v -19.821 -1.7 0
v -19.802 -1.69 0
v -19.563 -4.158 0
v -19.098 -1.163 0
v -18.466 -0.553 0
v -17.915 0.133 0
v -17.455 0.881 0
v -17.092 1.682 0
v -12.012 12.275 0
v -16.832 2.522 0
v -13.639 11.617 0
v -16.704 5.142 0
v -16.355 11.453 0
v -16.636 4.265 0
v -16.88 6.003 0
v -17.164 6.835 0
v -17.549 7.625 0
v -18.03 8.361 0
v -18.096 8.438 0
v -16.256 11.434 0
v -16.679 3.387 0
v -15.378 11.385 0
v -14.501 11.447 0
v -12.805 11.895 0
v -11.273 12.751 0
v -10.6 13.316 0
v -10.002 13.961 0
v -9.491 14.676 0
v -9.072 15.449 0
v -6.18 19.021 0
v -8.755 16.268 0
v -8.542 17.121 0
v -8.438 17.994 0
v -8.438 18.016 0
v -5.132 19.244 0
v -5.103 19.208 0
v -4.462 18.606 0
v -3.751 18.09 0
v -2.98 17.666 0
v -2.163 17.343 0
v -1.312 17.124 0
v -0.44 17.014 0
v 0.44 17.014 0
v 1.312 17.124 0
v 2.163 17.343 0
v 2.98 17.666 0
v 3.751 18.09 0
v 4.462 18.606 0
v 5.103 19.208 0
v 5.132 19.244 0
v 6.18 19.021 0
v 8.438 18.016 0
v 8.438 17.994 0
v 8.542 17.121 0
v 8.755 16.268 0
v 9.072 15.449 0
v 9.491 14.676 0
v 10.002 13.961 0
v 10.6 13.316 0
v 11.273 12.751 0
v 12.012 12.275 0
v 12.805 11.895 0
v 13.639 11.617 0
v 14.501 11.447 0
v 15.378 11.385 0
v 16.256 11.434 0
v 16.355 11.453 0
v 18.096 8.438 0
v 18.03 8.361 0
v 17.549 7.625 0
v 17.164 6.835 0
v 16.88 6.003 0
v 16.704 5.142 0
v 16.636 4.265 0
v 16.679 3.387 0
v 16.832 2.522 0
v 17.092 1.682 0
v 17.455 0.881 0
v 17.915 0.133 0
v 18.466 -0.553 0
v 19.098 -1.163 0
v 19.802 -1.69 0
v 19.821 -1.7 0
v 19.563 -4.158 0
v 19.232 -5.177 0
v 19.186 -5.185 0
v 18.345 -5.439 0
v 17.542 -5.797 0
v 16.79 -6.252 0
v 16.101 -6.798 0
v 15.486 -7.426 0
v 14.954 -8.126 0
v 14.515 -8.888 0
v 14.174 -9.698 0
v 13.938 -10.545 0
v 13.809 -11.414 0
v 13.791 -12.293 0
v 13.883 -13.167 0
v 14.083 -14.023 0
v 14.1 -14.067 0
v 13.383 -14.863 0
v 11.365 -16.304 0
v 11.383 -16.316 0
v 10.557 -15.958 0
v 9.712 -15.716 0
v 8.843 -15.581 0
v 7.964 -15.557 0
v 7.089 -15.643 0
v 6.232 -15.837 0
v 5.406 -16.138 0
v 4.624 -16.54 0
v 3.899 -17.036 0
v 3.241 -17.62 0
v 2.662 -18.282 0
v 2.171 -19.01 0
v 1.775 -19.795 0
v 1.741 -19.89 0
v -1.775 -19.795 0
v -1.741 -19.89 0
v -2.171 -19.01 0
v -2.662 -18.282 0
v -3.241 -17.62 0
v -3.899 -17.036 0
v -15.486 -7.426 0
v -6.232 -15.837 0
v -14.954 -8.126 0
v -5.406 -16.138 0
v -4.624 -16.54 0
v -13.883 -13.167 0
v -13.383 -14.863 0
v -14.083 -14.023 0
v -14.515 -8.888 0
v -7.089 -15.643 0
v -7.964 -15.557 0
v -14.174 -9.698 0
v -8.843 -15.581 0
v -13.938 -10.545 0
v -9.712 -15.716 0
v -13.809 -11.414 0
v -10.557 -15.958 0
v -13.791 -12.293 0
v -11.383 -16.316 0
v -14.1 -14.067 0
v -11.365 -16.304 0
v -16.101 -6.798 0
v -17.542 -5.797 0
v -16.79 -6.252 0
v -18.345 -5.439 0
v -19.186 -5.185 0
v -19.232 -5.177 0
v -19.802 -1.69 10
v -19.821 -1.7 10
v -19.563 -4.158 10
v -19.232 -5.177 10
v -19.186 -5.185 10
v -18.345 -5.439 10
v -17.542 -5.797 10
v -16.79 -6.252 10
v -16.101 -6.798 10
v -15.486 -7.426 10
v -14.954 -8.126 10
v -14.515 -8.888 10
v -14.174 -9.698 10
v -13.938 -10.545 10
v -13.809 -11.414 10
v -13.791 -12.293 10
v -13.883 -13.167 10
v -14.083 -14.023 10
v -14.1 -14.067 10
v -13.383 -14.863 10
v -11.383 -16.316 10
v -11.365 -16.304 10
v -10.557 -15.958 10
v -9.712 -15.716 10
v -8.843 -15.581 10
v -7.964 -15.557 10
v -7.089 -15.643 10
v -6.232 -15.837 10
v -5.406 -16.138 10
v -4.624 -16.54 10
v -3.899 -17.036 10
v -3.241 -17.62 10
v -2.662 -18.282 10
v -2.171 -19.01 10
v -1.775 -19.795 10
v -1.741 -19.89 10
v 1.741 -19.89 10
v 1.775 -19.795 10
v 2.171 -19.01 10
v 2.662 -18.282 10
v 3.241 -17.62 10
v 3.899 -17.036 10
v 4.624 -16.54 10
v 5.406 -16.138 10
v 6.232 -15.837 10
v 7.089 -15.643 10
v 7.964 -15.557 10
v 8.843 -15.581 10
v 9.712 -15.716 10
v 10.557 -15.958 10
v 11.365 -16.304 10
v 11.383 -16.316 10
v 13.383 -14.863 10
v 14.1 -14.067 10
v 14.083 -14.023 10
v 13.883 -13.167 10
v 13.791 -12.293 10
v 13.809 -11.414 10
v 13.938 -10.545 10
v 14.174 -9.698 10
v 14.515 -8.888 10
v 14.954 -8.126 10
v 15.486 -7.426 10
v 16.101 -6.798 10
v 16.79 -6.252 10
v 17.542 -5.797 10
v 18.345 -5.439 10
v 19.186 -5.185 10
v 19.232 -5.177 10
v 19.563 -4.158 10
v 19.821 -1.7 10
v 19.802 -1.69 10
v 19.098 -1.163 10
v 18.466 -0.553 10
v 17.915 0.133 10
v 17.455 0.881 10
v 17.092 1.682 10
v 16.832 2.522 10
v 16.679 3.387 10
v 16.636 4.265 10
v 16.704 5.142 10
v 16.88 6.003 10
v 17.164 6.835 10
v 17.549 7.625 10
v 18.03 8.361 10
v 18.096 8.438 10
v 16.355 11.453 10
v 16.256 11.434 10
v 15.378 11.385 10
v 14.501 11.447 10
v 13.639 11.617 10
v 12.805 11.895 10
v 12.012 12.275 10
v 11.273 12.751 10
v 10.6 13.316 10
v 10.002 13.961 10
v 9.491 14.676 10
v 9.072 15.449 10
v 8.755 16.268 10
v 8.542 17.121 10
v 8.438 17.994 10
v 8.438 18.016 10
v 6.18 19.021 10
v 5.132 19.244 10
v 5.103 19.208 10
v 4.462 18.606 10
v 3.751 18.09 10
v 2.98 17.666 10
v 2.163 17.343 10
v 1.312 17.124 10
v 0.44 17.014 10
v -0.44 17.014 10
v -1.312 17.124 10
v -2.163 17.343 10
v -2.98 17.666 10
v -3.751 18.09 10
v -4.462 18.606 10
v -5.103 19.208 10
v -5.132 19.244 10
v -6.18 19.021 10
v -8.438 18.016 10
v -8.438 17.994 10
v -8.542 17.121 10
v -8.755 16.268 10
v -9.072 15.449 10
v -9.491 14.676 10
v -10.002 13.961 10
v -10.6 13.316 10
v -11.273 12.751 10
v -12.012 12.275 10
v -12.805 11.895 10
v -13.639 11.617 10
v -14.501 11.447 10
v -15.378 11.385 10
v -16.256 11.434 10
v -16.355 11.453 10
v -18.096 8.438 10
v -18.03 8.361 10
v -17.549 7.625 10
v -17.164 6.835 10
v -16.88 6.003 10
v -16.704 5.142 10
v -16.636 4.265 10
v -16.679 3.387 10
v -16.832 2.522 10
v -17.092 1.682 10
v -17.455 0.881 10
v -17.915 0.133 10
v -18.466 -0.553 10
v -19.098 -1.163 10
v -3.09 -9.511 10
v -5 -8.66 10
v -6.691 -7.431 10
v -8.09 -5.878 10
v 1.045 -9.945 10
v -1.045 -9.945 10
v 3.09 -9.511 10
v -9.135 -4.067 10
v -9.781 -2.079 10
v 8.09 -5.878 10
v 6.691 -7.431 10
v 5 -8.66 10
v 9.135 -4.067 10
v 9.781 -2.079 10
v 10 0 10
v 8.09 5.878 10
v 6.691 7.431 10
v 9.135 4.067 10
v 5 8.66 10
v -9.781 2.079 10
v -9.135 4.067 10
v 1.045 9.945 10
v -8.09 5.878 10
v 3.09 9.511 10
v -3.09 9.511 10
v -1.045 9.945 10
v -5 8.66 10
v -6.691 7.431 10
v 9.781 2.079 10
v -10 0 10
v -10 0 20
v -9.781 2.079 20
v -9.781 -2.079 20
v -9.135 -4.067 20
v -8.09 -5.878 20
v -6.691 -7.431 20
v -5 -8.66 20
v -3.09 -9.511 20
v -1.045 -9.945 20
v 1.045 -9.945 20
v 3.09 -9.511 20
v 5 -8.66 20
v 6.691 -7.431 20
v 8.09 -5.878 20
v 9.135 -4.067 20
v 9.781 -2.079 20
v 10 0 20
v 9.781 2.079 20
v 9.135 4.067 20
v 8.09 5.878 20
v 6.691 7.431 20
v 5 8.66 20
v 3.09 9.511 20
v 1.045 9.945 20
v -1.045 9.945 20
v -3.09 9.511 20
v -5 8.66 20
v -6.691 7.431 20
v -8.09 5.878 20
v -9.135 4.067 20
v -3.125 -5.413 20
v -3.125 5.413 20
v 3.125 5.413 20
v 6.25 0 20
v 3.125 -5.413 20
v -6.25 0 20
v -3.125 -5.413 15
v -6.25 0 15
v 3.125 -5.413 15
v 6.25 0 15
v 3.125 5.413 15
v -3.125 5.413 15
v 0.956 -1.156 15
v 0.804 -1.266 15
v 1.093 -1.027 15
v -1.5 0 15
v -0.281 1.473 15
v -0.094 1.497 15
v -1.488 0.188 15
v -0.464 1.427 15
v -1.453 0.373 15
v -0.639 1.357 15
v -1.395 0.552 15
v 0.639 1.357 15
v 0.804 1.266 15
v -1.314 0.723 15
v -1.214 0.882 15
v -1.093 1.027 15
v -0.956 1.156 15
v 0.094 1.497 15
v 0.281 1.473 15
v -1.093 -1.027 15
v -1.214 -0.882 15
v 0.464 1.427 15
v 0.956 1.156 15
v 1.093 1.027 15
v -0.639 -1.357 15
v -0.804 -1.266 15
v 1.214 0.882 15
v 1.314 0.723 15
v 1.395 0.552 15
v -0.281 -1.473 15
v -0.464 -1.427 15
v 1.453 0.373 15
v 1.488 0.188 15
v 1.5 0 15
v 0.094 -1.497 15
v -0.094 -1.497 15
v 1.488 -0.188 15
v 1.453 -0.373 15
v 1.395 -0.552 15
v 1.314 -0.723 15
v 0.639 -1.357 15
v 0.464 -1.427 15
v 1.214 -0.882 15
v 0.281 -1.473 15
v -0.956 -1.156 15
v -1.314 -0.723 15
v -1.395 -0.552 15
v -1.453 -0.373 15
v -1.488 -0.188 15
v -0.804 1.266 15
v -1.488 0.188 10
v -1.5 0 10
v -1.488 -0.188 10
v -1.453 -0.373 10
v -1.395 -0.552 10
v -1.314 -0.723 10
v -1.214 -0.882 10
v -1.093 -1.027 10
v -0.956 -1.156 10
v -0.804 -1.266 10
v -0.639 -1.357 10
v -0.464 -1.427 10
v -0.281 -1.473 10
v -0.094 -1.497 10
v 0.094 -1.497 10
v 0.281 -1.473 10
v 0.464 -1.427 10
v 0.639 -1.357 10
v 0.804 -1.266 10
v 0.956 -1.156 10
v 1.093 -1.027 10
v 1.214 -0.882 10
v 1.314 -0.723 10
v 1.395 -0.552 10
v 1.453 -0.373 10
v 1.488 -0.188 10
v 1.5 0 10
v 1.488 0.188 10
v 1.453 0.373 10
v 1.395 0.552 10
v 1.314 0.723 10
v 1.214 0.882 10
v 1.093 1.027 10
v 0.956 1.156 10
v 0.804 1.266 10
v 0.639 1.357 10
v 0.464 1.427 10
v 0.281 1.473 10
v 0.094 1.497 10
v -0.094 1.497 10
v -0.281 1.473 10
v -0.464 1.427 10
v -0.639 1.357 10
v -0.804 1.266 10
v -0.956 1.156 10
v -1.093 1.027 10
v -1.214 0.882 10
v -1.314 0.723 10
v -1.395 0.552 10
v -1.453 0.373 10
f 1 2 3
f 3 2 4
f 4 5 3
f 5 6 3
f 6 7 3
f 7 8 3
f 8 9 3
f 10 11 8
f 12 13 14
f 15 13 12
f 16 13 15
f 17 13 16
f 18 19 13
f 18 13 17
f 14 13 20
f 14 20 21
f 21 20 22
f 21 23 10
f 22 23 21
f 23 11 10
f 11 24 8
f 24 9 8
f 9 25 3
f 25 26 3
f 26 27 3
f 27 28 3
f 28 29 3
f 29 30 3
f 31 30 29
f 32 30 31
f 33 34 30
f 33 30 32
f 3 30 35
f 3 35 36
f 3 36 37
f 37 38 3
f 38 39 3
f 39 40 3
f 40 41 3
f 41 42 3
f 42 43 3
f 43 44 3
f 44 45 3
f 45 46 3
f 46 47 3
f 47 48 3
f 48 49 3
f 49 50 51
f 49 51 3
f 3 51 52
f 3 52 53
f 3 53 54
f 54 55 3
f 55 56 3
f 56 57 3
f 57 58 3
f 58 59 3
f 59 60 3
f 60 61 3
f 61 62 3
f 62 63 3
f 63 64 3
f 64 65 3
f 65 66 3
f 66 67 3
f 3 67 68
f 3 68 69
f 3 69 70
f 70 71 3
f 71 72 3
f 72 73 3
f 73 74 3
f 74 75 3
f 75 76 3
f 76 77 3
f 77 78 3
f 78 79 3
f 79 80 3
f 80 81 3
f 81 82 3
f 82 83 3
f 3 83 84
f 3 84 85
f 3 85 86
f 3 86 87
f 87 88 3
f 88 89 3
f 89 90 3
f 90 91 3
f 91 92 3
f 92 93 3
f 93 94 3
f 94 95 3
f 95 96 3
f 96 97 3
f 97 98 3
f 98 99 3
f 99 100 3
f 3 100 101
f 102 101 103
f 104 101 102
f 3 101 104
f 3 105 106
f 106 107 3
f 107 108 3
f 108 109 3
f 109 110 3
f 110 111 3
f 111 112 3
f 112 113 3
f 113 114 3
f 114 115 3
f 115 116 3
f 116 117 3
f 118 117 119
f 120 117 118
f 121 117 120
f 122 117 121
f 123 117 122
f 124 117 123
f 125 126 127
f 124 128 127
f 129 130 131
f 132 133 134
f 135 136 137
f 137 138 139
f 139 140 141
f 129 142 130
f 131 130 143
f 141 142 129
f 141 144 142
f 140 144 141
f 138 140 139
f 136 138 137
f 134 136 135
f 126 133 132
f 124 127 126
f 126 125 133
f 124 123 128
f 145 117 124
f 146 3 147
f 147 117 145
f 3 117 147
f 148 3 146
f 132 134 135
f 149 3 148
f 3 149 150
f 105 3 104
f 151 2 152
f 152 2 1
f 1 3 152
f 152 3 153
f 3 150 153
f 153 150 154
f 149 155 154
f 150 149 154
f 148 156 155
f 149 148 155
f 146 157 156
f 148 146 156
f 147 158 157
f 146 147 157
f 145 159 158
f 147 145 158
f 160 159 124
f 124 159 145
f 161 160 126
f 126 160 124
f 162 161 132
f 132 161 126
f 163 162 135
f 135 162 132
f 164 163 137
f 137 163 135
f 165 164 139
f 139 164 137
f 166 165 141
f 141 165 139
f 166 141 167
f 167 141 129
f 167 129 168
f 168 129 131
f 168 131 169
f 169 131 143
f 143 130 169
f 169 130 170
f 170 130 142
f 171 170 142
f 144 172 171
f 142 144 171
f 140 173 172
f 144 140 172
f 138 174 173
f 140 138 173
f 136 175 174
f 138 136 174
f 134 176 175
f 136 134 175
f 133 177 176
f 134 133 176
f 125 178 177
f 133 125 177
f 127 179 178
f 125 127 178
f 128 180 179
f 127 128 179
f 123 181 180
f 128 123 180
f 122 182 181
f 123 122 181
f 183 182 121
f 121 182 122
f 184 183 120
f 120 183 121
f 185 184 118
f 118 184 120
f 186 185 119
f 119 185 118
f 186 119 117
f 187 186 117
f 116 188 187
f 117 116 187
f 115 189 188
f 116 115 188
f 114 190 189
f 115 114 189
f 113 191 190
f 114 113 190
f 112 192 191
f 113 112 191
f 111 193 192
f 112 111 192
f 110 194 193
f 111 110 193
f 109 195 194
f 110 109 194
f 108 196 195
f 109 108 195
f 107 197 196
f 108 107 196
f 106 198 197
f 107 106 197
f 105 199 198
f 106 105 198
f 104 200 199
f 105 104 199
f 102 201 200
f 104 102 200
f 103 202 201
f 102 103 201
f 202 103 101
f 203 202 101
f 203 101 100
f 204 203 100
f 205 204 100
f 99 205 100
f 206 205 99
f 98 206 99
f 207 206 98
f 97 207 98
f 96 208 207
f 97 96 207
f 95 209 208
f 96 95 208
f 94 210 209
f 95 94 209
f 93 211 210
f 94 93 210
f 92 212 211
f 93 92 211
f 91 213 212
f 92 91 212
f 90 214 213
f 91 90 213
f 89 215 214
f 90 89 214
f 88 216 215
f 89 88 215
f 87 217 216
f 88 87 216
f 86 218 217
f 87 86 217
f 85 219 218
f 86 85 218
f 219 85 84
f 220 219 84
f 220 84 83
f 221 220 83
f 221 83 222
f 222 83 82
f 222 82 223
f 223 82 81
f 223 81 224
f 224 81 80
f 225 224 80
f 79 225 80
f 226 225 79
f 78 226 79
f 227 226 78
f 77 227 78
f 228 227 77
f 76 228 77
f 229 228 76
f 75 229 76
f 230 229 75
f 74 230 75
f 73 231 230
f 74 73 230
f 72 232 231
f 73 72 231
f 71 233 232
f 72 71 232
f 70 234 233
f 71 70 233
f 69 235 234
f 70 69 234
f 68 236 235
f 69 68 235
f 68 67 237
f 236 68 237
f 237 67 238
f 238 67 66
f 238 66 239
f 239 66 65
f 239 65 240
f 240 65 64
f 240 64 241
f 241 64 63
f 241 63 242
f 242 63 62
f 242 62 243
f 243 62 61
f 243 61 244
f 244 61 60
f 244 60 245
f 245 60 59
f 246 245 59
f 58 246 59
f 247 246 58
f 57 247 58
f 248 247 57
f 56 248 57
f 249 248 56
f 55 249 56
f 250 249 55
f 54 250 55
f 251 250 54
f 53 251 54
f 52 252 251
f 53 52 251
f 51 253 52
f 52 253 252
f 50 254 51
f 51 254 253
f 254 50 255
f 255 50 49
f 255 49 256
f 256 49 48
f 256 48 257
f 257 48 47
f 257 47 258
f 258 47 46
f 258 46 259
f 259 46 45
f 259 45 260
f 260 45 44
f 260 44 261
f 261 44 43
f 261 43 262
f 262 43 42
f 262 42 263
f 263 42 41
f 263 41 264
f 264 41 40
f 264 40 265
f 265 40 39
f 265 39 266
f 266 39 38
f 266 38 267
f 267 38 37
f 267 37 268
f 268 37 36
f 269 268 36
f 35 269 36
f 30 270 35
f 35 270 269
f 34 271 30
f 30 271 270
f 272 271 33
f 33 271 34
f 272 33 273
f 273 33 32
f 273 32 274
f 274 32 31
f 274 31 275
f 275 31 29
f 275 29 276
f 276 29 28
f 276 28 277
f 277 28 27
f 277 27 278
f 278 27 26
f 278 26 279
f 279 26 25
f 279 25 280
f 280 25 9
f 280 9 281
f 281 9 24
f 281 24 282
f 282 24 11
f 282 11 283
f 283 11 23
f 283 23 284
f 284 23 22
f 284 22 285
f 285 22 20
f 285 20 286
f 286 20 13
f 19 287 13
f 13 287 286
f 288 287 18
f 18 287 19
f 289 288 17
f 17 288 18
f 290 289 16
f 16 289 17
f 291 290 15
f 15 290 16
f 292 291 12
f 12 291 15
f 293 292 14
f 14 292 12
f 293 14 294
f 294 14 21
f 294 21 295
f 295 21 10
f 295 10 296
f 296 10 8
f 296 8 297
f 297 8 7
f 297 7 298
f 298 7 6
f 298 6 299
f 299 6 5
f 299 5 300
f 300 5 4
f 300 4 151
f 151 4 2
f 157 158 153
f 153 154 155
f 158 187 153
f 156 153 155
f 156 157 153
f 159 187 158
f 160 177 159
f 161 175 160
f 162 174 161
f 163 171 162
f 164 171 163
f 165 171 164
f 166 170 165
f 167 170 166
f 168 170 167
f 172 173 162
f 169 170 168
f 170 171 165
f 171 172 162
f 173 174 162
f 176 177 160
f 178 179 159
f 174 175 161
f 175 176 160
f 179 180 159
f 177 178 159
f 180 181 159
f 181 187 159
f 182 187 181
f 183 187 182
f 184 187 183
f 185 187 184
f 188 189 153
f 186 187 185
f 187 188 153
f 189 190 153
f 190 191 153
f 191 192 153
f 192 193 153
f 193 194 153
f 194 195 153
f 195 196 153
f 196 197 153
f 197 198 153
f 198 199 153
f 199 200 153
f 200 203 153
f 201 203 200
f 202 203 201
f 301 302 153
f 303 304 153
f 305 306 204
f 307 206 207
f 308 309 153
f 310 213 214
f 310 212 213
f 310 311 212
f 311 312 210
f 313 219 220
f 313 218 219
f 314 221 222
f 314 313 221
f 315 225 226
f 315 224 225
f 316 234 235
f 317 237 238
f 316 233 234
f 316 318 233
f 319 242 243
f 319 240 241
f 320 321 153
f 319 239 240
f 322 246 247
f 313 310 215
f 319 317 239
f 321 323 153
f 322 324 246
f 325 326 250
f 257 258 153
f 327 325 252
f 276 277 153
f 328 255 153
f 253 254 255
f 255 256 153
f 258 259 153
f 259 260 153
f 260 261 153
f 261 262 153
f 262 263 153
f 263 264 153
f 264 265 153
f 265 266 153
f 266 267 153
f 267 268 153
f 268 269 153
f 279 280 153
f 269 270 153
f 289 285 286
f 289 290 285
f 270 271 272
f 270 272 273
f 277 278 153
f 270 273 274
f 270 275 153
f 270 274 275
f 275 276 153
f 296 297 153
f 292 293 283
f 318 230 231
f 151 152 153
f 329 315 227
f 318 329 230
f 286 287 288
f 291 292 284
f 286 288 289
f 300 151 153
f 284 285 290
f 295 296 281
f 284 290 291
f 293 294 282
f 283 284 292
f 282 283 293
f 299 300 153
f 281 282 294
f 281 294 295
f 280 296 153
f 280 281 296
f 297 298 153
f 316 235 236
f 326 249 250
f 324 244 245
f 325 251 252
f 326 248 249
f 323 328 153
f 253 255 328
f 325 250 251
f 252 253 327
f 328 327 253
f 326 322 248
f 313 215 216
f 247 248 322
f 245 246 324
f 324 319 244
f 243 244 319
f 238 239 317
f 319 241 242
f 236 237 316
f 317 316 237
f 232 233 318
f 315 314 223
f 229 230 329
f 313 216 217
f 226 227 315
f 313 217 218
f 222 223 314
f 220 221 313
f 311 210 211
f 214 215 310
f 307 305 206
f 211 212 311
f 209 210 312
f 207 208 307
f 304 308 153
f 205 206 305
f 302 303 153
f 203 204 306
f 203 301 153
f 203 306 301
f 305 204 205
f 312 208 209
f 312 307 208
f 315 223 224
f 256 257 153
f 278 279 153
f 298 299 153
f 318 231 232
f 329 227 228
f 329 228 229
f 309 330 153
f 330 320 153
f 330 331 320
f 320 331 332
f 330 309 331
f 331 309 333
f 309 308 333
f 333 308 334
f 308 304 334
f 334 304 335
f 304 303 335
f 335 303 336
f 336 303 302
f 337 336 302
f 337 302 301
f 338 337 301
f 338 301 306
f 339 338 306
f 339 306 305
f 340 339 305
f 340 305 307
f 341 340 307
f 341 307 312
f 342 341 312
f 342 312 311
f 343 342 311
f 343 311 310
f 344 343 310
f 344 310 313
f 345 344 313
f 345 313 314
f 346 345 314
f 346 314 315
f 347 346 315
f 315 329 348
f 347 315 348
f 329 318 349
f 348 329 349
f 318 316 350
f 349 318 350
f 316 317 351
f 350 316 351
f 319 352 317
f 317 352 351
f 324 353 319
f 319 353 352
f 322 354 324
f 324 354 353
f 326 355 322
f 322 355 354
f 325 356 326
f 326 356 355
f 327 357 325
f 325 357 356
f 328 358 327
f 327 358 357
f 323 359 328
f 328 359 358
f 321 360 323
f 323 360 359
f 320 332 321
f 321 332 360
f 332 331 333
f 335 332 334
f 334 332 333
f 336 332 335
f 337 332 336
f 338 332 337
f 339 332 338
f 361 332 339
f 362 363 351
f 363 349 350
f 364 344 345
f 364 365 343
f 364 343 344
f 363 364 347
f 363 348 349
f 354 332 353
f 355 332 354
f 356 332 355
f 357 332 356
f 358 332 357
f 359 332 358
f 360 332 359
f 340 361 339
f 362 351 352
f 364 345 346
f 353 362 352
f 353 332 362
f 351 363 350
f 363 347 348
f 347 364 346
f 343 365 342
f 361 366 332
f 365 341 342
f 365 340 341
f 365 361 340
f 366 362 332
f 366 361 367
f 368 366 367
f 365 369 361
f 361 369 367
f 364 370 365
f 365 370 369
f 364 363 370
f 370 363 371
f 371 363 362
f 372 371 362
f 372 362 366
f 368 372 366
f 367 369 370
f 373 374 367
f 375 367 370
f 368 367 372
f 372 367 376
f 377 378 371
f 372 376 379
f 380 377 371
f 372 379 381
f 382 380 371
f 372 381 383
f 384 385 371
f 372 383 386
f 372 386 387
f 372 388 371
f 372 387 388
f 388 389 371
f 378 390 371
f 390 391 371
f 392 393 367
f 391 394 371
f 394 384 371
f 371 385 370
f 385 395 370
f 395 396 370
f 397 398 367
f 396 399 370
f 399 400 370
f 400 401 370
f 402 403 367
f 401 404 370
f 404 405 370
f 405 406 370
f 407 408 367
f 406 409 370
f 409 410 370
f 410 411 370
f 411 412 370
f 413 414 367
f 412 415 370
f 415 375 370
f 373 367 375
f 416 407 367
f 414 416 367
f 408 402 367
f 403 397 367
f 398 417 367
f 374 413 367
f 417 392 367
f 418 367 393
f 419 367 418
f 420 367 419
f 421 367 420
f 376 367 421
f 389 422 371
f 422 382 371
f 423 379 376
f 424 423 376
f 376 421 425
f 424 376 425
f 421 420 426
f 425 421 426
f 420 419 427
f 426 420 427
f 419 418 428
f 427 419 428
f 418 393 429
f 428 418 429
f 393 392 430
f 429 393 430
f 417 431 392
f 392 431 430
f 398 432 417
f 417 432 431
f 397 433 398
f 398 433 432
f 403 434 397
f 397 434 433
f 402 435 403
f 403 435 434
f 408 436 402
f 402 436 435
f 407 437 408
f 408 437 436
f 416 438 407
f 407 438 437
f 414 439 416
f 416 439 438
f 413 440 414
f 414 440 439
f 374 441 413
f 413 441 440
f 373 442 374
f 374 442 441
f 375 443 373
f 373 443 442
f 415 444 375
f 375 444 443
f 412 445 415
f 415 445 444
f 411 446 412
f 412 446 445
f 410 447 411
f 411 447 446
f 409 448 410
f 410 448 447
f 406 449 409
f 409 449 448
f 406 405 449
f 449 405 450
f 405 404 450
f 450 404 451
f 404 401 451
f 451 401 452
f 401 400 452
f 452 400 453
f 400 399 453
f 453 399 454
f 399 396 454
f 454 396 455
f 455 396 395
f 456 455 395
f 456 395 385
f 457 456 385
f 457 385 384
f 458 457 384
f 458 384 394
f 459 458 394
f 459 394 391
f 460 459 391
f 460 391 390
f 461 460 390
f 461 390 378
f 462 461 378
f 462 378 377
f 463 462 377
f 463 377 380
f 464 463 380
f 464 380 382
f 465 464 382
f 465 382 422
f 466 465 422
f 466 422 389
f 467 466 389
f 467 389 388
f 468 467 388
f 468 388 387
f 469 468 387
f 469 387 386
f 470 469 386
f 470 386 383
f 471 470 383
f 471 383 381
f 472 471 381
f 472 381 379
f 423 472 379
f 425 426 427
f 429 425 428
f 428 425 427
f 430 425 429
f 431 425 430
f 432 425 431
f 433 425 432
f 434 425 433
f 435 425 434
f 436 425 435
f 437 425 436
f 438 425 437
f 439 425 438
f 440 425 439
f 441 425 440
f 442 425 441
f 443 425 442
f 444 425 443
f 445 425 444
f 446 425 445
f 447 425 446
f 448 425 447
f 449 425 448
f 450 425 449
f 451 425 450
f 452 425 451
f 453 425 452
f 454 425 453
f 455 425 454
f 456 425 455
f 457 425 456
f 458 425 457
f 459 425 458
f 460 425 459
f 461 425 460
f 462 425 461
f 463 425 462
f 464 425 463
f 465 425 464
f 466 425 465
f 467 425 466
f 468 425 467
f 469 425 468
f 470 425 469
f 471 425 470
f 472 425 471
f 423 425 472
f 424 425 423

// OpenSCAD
difference(){
cylinder(20,10,10);

translate([0, 0, 10])
	cylinder(h = 11, r = 1.5, $fn = 50); 
	translate([0, 0, 15])
	cylinder(h = 7, r = 6.25, $fn = 6); 


}


difference(){
cylinder(10,20,20);



	for( i = [0 : 8] ) {
		rotate(v = [0,0,1], a = i*360 / 9) 

	translate([0, 24, -1] )
		cylinder(h = 12, r = 7, $fn=50);
}

}
